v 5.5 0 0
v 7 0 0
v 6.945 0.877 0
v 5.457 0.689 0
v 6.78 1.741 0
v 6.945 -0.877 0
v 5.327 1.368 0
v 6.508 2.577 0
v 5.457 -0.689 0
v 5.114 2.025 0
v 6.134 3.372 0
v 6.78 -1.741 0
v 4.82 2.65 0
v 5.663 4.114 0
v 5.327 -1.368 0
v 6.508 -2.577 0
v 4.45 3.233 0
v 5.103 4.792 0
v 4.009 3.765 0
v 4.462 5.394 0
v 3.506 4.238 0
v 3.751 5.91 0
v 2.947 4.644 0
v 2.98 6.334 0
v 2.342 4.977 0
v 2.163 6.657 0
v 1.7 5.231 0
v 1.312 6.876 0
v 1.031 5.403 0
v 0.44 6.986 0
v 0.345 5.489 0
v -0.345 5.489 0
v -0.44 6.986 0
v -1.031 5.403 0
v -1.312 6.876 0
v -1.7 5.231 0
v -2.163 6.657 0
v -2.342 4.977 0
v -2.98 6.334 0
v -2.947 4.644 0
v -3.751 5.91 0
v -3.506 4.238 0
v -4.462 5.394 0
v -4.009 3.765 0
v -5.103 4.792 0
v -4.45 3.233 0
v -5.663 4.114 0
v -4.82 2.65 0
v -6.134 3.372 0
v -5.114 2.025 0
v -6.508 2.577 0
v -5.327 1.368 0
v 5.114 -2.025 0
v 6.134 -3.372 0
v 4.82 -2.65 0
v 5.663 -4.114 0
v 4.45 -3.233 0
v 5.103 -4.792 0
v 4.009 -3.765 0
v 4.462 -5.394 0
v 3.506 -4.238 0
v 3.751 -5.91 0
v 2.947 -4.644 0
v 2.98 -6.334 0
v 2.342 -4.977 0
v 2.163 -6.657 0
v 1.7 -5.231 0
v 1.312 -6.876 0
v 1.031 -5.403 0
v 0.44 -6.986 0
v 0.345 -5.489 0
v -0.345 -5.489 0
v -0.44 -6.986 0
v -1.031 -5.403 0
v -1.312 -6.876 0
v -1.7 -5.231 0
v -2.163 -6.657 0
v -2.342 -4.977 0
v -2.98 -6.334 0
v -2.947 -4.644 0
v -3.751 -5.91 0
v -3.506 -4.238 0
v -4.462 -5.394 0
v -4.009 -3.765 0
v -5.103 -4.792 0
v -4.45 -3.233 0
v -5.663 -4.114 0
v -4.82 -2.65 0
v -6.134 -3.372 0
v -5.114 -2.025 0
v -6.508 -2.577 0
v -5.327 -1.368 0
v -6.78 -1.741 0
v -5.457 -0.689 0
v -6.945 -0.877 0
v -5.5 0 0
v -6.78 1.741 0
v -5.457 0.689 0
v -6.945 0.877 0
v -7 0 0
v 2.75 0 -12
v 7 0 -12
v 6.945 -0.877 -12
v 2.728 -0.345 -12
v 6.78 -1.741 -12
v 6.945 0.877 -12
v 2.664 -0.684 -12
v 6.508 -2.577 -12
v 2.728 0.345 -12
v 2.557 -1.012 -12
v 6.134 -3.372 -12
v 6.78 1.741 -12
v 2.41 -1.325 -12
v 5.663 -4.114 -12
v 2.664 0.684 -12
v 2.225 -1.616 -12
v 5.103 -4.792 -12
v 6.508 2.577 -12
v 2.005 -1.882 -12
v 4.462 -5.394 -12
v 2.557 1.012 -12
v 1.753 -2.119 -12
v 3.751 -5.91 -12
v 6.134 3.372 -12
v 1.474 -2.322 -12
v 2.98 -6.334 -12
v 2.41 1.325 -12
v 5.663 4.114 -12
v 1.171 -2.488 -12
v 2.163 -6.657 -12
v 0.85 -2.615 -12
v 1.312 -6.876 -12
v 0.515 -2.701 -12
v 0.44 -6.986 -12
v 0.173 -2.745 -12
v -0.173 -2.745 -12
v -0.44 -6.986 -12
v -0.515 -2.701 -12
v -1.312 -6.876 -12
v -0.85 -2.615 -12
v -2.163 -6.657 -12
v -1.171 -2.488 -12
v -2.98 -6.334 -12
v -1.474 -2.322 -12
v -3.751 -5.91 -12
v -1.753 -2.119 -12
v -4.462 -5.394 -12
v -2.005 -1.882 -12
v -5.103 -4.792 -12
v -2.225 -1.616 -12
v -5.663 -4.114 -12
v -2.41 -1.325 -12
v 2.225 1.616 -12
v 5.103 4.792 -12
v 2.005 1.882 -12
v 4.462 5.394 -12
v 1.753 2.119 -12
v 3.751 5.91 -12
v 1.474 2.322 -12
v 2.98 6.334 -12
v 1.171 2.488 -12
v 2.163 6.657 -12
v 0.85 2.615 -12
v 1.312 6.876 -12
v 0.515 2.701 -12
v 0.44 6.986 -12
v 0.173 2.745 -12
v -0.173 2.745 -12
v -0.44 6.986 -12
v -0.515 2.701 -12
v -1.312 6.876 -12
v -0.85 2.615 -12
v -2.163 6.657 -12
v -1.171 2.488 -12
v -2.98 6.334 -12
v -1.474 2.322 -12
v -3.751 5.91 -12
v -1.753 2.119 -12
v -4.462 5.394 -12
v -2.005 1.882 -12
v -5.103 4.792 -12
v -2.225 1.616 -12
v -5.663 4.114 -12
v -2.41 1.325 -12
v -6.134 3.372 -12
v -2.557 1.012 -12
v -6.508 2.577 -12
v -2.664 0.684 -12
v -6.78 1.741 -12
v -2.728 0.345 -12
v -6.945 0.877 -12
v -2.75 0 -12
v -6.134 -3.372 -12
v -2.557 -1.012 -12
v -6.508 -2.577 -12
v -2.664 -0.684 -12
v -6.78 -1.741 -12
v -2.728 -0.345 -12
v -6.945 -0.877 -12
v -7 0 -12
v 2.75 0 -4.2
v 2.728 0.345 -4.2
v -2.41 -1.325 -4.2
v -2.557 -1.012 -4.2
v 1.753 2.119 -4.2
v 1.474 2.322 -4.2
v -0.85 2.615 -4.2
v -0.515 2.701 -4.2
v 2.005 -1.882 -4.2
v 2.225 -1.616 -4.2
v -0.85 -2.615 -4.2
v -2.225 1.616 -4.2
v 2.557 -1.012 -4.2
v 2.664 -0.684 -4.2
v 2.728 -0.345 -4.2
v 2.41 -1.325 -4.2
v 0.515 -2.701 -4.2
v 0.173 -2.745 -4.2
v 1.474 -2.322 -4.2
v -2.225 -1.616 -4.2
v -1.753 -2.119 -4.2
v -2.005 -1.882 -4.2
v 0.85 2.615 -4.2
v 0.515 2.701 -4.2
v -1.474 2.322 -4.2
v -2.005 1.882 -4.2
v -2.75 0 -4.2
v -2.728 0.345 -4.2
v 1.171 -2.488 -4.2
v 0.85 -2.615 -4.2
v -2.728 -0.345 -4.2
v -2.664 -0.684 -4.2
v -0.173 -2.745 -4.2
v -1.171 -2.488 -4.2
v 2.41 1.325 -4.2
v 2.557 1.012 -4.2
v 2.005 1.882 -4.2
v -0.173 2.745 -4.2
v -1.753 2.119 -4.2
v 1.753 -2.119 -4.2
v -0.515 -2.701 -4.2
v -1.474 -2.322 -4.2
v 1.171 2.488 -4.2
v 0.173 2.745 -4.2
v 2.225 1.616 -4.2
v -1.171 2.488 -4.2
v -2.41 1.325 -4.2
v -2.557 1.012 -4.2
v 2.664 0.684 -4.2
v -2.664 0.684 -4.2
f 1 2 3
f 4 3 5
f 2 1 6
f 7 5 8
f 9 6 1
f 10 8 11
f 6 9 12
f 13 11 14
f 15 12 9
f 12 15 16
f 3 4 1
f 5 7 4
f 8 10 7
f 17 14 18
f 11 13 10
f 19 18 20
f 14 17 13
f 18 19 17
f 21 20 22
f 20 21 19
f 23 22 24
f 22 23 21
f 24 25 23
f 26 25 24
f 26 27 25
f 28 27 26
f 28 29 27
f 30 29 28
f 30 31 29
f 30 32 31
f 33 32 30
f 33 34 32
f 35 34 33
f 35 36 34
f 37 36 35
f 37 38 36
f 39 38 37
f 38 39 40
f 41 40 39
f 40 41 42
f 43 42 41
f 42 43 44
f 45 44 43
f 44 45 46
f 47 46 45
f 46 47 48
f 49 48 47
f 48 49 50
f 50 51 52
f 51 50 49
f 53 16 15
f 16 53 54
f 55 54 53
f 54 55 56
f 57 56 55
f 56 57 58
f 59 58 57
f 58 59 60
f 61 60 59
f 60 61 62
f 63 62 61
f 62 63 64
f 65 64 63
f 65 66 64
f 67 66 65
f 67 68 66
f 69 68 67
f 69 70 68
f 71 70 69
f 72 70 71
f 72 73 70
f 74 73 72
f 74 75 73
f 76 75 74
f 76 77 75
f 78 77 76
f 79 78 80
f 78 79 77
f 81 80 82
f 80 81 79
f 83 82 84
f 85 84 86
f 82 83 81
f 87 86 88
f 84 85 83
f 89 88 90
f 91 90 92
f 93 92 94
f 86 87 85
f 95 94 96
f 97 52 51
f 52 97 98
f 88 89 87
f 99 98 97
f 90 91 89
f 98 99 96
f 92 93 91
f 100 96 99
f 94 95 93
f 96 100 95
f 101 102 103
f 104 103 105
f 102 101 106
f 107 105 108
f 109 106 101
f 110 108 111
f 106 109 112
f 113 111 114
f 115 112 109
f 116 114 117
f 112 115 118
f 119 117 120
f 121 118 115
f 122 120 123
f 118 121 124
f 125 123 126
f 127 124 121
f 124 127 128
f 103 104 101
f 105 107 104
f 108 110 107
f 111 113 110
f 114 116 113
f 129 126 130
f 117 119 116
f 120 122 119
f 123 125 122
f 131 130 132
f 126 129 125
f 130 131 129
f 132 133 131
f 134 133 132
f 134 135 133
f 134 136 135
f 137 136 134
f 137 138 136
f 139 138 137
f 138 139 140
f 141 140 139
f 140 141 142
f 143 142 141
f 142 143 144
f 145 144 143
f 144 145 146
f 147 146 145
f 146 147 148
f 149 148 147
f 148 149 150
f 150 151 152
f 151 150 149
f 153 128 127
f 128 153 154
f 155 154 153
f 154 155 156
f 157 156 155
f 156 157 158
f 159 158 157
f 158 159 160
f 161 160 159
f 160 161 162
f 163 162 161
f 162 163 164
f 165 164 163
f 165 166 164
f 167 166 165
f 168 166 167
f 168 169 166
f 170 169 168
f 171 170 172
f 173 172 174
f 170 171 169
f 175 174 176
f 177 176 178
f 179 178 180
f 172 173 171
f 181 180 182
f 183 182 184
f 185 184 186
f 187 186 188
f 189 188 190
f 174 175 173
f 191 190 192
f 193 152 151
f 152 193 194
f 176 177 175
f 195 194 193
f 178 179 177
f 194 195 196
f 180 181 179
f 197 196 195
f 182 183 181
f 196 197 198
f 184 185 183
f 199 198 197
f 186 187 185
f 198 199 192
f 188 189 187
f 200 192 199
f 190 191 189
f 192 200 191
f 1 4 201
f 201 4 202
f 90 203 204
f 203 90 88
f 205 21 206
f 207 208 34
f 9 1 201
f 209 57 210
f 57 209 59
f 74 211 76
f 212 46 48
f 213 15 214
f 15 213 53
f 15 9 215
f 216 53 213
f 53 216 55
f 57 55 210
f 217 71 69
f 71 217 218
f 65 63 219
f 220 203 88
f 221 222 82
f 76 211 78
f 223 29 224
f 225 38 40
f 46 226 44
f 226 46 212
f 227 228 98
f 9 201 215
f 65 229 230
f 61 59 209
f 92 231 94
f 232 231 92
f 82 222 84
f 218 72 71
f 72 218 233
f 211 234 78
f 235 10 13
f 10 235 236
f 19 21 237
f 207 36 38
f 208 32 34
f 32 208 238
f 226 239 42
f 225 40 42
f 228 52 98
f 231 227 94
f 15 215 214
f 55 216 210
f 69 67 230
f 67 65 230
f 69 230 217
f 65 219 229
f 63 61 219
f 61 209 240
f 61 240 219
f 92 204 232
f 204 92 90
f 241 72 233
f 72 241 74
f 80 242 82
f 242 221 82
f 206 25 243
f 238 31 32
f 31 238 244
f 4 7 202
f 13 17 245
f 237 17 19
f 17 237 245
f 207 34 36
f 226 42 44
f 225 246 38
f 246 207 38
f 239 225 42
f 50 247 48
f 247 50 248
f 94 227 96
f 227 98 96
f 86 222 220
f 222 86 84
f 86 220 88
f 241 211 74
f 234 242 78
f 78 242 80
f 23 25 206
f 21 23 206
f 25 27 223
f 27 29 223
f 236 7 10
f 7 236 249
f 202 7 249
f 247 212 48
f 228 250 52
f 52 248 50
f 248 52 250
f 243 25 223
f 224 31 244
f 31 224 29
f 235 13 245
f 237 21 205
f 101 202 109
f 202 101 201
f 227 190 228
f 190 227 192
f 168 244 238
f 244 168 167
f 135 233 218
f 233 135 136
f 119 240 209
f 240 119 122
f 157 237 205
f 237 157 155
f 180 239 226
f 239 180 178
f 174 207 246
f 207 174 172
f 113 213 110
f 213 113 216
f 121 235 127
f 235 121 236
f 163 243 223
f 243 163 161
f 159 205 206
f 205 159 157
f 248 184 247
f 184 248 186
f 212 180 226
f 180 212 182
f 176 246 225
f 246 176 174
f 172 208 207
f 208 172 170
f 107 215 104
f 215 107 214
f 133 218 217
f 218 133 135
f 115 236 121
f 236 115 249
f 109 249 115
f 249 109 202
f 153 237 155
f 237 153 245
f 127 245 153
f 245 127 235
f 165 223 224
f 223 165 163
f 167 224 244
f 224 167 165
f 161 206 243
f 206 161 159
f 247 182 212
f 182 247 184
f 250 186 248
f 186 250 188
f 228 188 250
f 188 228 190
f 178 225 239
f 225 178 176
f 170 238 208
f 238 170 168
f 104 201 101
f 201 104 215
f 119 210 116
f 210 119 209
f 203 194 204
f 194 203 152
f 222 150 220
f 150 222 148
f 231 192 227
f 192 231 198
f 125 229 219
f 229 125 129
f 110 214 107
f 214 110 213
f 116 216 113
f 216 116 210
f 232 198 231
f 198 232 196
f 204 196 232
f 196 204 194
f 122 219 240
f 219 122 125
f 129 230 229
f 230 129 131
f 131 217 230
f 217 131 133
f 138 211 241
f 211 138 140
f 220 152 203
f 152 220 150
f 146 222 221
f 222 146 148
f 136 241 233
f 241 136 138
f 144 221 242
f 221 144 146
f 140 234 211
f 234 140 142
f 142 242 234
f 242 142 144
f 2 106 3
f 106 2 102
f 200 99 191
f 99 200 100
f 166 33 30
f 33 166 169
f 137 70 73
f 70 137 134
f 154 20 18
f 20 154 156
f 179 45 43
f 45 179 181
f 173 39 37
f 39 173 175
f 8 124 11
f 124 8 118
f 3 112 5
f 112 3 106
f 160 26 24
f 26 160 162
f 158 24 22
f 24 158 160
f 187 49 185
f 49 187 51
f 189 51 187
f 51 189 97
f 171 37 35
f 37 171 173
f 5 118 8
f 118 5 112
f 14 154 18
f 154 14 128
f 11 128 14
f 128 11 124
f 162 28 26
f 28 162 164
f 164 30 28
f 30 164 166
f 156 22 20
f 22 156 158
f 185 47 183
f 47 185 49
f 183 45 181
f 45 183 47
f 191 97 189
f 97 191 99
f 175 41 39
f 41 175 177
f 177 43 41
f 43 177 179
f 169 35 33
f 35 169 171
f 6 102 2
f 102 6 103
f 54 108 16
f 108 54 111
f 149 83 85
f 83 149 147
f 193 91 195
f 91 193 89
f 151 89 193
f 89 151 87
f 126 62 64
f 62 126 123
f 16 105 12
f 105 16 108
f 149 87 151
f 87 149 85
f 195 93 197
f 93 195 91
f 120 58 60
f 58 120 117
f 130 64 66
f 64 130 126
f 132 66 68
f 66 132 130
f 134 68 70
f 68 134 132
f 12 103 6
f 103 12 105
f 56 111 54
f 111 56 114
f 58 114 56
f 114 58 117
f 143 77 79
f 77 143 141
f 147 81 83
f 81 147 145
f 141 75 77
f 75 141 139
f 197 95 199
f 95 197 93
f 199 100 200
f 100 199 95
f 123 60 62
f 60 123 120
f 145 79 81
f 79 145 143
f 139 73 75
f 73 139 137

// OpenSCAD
$fn = 50;


difference() {
	union() {
		translate(v = [0, 0, -12.0000000000]) {
			cylinder(h = 12, r = 7.0000000000);
		}
		cylinder(h = 0, r = 13.0000000000);
	}
	union() {
		translate(v = [0, 0, 0]) {
			rotate(a = [0, 0, 0]) {
				difference() {
					union() {
						#translate(v = [0, 0, -12.0000000000]) {
							cylinder(h = 12, r = 2.2500000000);
						}
						#translate(v = [0, 0, -4.2000000000]) {
							cylinder(h = 4.2000000000, r1 = 2.7500000000, r2 = 5.5000000000);
						}
						#translate(v = [0, 0, -12.0000000000]) {
							cylinder(h = 12, r = 2.7500000000);
						}
						#translate(v = [0, 0, -12.0000000000]) {
							cylinder(h = 12, r = 2.2500000000);
						}
					}
					union();
				}
			}
		}
	}
}
